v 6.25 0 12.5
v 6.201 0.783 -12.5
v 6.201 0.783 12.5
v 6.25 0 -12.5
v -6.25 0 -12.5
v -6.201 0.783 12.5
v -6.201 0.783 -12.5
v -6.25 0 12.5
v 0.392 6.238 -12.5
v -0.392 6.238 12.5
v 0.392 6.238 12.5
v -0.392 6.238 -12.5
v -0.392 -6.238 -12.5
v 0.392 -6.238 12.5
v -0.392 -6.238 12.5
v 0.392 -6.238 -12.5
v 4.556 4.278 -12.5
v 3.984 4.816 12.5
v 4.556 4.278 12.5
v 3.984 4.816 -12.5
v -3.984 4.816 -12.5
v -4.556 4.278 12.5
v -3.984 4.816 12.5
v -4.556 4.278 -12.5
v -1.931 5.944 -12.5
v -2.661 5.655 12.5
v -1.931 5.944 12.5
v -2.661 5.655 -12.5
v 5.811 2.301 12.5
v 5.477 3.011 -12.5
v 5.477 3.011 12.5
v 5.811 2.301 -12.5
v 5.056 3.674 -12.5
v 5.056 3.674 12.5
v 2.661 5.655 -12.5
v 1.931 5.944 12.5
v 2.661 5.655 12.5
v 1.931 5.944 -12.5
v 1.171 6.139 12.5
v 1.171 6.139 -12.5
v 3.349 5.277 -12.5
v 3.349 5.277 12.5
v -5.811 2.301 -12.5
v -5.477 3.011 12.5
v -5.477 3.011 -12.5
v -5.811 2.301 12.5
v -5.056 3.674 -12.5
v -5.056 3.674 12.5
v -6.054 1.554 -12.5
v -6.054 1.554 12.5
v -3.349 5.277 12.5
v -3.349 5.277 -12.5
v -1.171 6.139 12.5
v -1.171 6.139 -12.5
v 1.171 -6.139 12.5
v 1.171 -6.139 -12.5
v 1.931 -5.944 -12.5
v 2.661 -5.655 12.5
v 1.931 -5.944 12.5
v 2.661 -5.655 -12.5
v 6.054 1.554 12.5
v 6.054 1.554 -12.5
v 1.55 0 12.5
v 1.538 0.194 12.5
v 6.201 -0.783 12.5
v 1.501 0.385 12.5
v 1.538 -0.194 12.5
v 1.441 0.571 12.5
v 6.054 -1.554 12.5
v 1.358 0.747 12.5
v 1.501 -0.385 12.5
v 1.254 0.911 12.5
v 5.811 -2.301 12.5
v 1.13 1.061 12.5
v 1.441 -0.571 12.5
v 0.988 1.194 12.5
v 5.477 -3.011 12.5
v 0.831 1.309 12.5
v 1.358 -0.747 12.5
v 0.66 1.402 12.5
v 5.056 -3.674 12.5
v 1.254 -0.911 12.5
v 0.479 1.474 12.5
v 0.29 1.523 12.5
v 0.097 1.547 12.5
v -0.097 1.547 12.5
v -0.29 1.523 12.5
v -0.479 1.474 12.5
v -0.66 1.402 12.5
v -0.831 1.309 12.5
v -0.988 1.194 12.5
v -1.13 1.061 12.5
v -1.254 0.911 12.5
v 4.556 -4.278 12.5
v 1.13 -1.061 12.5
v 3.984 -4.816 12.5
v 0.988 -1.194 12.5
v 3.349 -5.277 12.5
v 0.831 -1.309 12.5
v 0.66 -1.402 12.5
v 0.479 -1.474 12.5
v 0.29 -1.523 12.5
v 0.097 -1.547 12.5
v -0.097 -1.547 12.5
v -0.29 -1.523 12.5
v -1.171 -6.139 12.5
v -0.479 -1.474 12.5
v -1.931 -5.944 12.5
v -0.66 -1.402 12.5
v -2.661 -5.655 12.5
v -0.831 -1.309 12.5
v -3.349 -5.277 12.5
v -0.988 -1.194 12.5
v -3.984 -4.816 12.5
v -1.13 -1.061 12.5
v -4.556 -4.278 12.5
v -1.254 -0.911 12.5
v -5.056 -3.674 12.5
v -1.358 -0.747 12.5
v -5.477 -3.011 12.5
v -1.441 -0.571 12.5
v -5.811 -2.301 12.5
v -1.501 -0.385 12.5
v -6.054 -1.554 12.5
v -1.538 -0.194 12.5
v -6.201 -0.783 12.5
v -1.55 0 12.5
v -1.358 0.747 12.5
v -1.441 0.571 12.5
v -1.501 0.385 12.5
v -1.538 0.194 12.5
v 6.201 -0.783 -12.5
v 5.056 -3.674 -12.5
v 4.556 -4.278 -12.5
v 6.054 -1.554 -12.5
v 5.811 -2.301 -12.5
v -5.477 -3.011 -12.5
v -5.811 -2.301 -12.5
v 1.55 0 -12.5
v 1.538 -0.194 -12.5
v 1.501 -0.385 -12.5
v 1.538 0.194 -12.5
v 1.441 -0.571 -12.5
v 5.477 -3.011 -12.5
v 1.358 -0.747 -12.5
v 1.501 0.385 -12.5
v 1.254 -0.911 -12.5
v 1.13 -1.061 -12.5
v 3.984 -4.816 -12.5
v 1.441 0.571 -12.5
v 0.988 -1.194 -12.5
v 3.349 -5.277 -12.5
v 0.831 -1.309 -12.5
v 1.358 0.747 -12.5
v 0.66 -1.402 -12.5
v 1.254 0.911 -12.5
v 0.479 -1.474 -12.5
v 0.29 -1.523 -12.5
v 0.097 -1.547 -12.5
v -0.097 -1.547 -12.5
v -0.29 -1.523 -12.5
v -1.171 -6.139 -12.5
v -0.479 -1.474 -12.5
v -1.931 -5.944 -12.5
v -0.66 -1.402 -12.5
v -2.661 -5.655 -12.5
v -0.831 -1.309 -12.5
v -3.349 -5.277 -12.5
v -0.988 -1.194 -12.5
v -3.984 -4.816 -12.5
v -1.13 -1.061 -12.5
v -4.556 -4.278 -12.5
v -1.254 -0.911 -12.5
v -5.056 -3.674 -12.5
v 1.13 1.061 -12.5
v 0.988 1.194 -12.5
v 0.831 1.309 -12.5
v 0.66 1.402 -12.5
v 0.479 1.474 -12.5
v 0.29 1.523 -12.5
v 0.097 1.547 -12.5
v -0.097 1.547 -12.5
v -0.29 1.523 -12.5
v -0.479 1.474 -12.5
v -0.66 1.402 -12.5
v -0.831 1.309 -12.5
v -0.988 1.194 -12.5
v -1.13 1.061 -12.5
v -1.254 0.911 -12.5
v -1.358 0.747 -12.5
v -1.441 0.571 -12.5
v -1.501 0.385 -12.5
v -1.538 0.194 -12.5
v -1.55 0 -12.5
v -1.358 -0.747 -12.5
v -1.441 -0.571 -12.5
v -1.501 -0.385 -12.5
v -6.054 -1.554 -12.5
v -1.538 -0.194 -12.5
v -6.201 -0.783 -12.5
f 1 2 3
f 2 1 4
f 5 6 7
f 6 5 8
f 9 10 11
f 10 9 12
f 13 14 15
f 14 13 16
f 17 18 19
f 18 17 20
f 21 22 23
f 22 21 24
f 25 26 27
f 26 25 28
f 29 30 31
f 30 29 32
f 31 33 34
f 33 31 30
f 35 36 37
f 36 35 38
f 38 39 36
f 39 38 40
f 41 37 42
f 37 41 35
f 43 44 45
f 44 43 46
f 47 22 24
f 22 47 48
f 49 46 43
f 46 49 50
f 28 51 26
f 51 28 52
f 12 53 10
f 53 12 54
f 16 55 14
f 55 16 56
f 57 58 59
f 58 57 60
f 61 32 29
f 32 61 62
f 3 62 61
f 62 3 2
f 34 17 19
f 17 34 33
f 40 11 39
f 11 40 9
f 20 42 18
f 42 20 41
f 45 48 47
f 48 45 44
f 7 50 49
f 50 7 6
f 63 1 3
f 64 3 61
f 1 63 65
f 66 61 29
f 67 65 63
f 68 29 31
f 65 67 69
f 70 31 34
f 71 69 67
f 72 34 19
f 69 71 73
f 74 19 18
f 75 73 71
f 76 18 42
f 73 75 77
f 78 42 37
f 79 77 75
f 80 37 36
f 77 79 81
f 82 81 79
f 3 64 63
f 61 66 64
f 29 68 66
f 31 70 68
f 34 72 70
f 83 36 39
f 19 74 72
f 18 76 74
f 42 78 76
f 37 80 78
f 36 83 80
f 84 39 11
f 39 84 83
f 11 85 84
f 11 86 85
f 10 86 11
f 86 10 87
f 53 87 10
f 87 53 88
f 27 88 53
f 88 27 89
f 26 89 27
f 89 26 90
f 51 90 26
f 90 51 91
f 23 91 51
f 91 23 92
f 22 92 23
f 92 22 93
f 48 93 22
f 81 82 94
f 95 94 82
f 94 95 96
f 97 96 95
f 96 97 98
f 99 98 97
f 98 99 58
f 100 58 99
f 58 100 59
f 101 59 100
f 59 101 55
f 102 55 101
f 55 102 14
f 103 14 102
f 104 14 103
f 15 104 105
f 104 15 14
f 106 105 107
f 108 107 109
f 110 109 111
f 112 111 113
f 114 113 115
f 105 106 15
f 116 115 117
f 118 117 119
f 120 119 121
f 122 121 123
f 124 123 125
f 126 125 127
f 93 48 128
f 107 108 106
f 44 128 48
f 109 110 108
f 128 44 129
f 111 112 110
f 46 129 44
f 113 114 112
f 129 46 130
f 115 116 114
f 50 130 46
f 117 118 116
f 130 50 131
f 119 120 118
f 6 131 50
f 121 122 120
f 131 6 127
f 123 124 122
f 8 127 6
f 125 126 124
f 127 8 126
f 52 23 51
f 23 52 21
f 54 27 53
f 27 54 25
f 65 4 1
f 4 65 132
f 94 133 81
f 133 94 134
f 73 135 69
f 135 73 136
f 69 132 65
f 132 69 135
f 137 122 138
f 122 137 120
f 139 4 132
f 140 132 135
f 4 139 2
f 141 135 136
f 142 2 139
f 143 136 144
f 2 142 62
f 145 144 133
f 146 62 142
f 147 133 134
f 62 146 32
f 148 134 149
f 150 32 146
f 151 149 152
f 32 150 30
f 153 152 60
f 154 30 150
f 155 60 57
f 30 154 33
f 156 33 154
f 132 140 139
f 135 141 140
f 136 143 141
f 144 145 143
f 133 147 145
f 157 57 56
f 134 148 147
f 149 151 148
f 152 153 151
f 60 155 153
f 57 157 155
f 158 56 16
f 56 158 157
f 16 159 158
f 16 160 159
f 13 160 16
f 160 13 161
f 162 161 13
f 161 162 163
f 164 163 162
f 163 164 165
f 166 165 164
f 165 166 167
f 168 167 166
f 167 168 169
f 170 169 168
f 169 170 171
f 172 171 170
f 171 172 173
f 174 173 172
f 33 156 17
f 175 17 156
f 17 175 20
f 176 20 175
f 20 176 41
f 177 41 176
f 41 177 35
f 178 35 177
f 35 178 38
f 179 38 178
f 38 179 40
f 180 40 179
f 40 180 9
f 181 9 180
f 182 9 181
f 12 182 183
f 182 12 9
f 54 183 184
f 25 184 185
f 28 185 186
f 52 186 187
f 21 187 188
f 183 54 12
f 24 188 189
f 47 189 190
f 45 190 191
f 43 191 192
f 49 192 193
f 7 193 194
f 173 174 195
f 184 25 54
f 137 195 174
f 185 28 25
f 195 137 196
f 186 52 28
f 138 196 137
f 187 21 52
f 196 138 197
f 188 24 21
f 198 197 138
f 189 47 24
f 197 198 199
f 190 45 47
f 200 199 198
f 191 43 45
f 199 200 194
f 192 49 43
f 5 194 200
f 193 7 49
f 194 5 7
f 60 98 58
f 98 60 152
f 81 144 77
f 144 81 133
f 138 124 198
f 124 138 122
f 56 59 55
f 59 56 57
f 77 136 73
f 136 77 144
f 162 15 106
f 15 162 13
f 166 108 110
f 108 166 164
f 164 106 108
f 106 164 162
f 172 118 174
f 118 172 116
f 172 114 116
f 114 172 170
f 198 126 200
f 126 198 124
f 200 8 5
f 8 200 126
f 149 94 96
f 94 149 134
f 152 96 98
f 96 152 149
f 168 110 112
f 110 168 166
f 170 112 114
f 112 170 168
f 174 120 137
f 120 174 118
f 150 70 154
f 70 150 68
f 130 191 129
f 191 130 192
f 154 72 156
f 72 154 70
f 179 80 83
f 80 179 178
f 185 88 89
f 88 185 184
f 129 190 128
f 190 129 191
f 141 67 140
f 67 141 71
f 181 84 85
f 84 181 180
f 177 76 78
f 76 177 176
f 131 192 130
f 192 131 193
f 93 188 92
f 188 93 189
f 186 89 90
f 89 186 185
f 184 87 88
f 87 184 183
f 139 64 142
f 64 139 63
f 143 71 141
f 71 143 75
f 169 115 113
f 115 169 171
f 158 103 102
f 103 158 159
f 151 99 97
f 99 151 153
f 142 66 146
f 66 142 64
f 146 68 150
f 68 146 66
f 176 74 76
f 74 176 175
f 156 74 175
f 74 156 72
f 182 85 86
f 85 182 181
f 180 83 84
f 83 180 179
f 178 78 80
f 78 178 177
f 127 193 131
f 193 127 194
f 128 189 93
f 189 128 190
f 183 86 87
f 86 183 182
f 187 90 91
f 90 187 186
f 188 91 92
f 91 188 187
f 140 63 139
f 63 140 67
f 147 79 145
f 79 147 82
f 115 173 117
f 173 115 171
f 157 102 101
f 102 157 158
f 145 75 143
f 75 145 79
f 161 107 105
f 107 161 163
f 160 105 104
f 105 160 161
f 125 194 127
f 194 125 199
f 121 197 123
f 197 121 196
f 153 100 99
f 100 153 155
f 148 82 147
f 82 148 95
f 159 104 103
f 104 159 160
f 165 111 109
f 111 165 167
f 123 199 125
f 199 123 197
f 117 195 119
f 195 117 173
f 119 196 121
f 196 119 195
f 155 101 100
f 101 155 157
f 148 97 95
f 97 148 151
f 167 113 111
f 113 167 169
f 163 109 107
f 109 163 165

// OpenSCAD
$fn = 50;


difference() {
	union() {
		translate(v = [0, 0, -12.5000000000]) {
			cylinder(h = 25, r = 6.2500000000);
		}
	}
	union() {
		translate(v = [0, 0, -100.0000000000]) {
			cylinder(h = 200, r = 1.5500000000);
		}
	}
}
